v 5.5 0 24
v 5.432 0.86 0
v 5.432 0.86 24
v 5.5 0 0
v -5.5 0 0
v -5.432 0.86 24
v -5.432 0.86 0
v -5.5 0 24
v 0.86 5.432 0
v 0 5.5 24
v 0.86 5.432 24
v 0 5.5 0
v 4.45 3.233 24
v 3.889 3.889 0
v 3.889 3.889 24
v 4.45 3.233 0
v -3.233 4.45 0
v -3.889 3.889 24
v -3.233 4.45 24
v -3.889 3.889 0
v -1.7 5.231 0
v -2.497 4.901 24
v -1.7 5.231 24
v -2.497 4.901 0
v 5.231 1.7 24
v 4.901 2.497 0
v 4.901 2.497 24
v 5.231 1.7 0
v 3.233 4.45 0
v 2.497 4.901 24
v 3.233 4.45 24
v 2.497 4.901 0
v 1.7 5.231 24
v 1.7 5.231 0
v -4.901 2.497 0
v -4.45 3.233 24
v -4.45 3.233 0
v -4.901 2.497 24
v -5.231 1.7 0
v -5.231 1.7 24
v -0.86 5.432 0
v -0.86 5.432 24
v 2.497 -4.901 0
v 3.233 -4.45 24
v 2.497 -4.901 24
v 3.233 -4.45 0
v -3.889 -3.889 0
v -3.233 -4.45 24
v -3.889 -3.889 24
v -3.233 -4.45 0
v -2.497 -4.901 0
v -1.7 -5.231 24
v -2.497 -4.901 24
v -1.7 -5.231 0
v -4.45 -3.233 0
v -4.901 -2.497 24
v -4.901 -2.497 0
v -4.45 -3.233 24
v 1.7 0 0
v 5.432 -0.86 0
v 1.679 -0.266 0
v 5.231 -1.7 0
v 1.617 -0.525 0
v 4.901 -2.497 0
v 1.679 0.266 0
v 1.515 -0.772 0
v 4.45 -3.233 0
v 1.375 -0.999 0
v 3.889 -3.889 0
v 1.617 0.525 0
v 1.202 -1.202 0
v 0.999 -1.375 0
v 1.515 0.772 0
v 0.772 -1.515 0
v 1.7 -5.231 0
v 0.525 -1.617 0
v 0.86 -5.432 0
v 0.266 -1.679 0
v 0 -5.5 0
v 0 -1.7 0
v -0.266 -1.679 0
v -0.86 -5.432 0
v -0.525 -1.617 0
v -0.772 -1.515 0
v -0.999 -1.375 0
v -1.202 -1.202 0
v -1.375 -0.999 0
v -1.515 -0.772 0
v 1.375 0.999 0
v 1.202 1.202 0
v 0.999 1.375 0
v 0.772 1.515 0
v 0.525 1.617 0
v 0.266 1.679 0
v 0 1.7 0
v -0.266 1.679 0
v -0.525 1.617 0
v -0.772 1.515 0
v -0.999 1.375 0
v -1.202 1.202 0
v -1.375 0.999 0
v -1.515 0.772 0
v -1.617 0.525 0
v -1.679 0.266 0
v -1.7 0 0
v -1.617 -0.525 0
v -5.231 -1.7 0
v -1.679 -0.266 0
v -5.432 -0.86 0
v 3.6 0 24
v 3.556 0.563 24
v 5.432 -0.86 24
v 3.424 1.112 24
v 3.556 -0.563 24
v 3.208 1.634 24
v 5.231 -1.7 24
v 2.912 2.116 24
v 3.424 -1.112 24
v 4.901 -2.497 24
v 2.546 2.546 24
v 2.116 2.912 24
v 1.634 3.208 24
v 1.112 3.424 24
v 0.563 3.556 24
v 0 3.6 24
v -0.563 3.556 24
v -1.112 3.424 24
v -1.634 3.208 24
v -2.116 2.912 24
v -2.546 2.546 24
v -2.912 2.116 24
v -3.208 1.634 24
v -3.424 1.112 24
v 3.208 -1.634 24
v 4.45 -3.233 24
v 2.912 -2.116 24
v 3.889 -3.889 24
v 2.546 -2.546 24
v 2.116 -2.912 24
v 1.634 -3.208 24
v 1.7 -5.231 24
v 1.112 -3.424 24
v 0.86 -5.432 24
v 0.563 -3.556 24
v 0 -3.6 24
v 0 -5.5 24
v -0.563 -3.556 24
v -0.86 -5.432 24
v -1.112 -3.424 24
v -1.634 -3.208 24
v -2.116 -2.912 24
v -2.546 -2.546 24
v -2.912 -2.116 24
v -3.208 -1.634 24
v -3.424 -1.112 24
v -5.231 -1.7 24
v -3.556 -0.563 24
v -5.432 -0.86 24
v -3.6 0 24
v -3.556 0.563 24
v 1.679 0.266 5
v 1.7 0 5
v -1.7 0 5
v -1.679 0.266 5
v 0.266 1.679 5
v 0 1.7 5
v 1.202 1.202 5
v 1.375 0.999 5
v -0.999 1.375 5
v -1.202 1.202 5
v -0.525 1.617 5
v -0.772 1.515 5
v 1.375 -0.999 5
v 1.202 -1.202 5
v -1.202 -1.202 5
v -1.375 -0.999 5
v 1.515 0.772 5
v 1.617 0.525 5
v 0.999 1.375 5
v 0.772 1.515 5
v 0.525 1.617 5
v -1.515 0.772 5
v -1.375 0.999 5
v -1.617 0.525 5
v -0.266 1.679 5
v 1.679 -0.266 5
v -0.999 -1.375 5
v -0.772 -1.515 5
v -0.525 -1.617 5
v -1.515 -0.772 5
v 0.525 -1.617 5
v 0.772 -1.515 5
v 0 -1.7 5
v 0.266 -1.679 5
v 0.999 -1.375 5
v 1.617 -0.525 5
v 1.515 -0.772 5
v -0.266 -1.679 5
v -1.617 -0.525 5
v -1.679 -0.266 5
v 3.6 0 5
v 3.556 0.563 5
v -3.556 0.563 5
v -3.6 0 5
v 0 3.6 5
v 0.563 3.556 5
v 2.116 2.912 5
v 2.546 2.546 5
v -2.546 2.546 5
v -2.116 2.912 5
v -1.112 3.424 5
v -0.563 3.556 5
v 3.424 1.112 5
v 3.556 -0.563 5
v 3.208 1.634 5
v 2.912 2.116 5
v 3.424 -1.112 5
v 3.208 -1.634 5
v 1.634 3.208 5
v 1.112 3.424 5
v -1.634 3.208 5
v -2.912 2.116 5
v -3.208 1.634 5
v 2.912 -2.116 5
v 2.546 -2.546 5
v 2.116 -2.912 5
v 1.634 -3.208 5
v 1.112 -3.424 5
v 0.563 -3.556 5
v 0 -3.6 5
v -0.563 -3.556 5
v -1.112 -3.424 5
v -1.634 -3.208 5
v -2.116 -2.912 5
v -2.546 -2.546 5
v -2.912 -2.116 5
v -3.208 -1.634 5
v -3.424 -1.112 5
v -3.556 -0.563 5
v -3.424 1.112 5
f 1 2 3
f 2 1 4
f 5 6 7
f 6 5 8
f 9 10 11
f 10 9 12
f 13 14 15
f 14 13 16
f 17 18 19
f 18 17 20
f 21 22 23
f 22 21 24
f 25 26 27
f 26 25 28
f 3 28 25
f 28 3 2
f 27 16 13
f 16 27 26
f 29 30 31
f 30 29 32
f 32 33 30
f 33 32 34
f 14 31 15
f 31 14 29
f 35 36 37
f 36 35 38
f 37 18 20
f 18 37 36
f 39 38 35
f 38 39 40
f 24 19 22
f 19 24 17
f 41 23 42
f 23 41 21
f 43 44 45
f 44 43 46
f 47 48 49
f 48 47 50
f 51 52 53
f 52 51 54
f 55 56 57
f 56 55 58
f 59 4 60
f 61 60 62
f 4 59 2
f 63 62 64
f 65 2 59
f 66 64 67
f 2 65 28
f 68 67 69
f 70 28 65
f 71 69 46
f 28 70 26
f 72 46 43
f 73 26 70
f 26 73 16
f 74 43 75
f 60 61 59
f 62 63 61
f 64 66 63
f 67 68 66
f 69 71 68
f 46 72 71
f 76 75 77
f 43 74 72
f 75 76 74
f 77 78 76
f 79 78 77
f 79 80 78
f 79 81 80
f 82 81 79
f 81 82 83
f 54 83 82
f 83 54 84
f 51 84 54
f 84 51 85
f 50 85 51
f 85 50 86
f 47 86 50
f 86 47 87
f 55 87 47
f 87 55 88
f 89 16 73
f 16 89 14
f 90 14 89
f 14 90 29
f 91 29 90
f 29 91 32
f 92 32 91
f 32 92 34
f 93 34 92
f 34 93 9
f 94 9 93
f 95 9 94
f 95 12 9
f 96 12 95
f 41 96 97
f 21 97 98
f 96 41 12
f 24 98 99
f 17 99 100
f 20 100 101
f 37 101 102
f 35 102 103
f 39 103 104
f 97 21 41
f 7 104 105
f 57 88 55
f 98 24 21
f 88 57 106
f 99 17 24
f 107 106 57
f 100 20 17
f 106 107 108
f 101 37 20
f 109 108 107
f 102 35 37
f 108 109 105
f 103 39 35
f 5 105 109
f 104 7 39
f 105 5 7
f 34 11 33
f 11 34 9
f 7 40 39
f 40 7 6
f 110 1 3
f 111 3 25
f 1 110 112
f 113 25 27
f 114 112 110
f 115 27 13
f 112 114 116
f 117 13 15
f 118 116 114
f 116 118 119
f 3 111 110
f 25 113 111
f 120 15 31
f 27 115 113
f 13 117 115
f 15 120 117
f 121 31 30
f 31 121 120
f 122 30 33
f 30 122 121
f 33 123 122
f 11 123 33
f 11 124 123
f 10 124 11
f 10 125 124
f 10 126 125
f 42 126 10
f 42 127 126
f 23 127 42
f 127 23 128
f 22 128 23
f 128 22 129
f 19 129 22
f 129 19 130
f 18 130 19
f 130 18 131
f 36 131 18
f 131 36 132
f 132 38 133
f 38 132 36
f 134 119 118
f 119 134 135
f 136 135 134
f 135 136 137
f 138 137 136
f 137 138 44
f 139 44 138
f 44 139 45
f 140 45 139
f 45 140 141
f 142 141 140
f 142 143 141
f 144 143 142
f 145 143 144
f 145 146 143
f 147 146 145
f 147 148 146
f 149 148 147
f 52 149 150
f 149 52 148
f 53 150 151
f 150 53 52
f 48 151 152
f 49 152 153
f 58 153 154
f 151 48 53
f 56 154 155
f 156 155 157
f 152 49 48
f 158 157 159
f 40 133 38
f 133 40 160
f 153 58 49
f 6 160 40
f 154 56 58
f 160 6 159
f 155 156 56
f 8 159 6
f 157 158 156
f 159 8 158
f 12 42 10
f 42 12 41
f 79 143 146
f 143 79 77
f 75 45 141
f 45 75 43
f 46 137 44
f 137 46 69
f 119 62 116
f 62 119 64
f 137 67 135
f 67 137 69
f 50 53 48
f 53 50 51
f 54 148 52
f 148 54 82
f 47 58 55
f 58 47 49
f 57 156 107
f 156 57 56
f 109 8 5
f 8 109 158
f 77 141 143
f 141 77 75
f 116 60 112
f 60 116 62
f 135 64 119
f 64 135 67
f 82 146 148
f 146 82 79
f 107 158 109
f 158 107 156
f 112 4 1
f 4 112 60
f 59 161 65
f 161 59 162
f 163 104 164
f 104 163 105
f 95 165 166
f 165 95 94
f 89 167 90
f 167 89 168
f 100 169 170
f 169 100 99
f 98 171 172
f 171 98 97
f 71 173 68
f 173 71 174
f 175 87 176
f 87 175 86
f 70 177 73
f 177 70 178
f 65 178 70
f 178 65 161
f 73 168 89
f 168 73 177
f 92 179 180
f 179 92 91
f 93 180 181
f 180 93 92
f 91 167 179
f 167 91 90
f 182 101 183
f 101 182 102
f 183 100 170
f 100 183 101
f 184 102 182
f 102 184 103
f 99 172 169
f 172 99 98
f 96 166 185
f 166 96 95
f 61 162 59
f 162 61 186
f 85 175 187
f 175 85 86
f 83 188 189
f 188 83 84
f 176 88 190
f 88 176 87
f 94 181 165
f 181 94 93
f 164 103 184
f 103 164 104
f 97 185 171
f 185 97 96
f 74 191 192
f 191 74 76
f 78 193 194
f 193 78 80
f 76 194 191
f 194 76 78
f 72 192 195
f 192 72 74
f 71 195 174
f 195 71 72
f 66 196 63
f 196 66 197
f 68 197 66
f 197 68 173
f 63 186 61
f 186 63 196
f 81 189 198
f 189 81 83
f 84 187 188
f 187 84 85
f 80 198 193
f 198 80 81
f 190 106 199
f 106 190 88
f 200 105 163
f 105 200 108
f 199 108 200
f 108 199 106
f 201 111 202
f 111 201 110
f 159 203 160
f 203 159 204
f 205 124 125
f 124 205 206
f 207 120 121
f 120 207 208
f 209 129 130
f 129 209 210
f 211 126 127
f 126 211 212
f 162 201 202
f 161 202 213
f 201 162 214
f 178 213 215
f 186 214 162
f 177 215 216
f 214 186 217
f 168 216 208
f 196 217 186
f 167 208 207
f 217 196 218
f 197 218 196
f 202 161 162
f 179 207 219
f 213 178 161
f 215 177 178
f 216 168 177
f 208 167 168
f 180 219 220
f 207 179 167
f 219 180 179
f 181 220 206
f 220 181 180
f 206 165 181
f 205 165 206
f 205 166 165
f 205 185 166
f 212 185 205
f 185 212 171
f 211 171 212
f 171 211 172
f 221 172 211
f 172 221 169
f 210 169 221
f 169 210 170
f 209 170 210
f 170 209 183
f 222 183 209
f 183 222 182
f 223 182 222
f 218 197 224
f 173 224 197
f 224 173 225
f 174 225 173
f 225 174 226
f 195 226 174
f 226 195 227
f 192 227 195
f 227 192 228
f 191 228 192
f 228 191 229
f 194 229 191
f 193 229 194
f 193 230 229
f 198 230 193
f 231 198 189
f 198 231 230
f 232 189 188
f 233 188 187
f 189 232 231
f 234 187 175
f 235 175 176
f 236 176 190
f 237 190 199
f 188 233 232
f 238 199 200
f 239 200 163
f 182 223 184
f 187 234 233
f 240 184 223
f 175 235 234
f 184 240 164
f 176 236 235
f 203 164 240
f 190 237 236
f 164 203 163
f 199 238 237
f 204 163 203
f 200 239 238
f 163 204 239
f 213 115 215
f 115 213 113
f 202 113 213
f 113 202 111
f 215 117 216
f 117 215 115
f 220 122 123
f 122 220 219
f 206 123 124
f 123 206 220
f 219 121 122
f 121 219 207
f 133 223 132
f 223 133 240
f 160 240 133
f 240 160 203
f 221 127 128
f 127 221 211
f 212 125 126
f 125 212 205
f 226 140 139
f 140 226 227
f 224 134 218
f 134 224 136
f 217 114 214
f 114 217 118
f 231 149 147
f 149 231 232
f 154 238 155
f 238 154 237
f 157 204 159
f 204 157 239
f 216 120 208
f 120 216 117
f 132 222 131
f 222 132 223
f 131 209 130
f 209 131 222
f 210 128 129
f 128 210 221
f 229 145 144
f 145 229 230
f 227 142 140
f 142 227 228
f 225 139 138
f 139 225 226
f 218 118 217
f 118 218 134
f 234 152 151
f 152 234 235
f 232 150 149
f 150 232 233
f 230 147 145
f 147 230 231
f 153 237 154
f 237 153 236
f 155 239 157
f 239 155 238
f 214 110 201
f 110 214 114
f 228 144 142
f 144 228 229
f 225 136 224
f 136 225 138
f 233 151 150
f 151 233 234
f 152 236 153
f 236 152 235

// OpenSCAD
$fn = 40;

// ====================================================================
// 1. KHUNG CHAN DON K2 HUB CHO PIN 2S2P (01D_Base_Riser_Frame_2S2P)
// ====================================================================
// - Nang tam bat K2 Hub len Z_top = 46.0mm (hoac 48.0mm):
//   + Mat day san xe Z = 4.0mm -> Khoang sang gam lot long: H_clear = 46.0 - 4.0 = 42.0mm!
//   + Dat vua khit khoi pin 2S2P 38 x 38 x 70mm + day dai Velcro 2mm + khe ho an toan 2mm!
// - 4 Chan don ha thang dung xuong 4 tru khung gam (Z = 22.0mm) tai X = +-33.0, Y = 49.0 & 99.0
//   + Day chan day 4.5mm (Z = 22.0..26.5mm) bat oc M3x10/12mm cuc de
//   + Gieng mo thong suot tu Z = 26.5 len Z_top giup van oc thang dung tu tren xuong
// - 2 Thanh giang ngang duoc bo tri NÉ PIN 2S2P 100%:
//   + Giang sau tai Y in [-18.0, -10.0mm] (phia sau pin)
//   + Giang truoc tai Y in [84.0, 92.0mm] (phia truoc pin)
//   + Toan bo khoang giua X in [-26.5, +26.5mm], Y in [0, 84mm] THONG SUOT 100% khong vuong giang!
// - 4 Tai khoa nhanh lo thien co san hoc giu tan M3 day kin chong roi
// - In lat up 180° (mat Z_top nam sat ban in): IN 0% SUPPORT!
// ====================================================================
module k2_base_riser_frame_2s2p(Z_top = 46.0) {
    difference() {
        union() {
            for (sx = [-1, 1]) {
                // 1. Hai Chan Tru Sau (|X| in [26.5, 39.2], Y in [45.0, 56.5], Z in [22.0, Z_top]):
                translate([sx * 32.85 - 6.35, 45.0, 22.0])
                    cube([12.7, 11.5, Z_top - 22.0]);
                    
                // 2. Hai Chan & Tay Tru Truoc Ne Thap Nang (|X| in [29.2, 39.2], Y in [82.0, 102.0], Z in [22.0, Z_top]):
                translate([sx * 34.2 - 5.0, 82.0, 22.0])
                    cube([10.0, 20.0, Z_top - 22.0]);
                    
                // 3. Dam doc tren noi lien tu Tai Sau (Y = -18.0) den Tay Truoc (Y = 85.0) tai Z in [Z_top - 7.0, Z_top]:
                translate([sx * 33.5 - 5.7, -18.0, Z_top - 7.0])
                    cube([11.4, 103.0, 7.0]);
                    
                // 4. Khoi Tai Khoa Sau Lo Thien day 8mm (|X| in [25.5, 40.5], Y in [-18.0, -7.0], Z in [Z_top - 8.0, Z_top]):
                translate([sx * 33.0 - 7.5, -18.0, Z_top - 8.0])
                    cube([15.0, 11.0, 8.0]);
            }
            
            // 5. Hai Thanh Giang Ngang Chu H NE HOAN TOAN PIN 2S2P:
            //    - Giang Sau: Tai Y in [-18.0, -10.0mm], Z in [Z_top - 6.0, Z_top] (Noi lien 2 tai sau)
            //    - Giang Truoc: Tai Y in [84.0, 92.0mm], Z in [Z_top - 6.0, Z_top] (Noi lien 2 tay truoc)
            //    -> Toan bo khoang tu Y = -10.0 den Y = 84.0mm (dai 94mm, rong 53mm) TRONG 100% cho Pin 2S2P 38x70mm!
            translate([-33.0, -17.0, Z_top - 6.0]) cube([66.0, 8.0, 6.0]);
            translate([-33.0, 84.0, Z_top - 6.0])  cube([66.0, 8.0, 6.0]);
        }
        
        // Vát goc day sau Chan Sau (Y = 45.0..47.5, Z = 22.0..27.0) tranh 100% than motor GA25:
        for (sx = [-1, 1]) {
            translate([sx * 33.0 - 7.5, 42.5, 21.0])
                rotate([38, 0, 0])
                    cube([15.0, 4.5, 8.0]);
        }
        
        // A. 2 HOC BAT TRU SAU (X = +-33.0, Y = 47.5..50.5):
        //    Day Z = 22.0..26.5mm (day 4.5mm), phia tren Z = 26.5..Z_top mo gieng thang dung O7.6mm
        for (sx = [-1, 1]) {
            // Lo truot oc M3 qua day day 4.5mm (Z = 22.0..26.5mm):
            hull() {
                translate([sx * 33.0, 47.5, 20.0]) cylinder(d=3.6, h=20.0);
                translate([sx * 33.0, 50.5, 20.0]) cylinder(d=3.6, h=20.0);
            }
            // Non chuyen tiep tu do 45° tu lo M3 len gieng dau oc:
            hull() {
                translate([sx * 33.0, 47.5, 26.5]) cylinder(d1=3.6, d2=7.6, h=2.5);
                translate([sx * 33.0, 50.5, 26.5]) cylinder(d1=3.6, d2=7.6, h=2.5);
            }
            // Gieng dung tha oc M3 & luc giac van thang dung tu tren xuong (Z = 28.9..Z_top+1):
            hull() {
                translate([sx * 33.0, 47.5, 28.9]) cylinder(d=7.6, h=Z_top - 27.9);
                translate([sx * 33.0, 50.5, 28.9]) cylinder(d=7.6, h=Z_top - 27.9);
            }
        }
        
        // B. 2 HOC BAT TRU TRUOC LO THIEN (X = +-32.0..35.5, Y = 95.5..99.5):
        //    Day Z = 22.0..26.5mm (day 4.5mm), phia tren Z = 26.5..Z_top mo thong ra phia truoc & mep ngoai:
        for (sx = [-1, 1]) {
            hull() {
                translate([sx * 32.0, 95.5, 20.0]) cylinder(d=3.6, h=20.0);
                translate([sx * 35.5, 95.5, 20.0]) cylinder(d=3.6, h=20.0);
                translate([sx * 32.0, 99.5, 20.0]) cylinder(d=3.6, h=20.0);
                translate([sx * 35.5, 99.5, 20.0]) cylinder(d=3.6, h=20.0);
            }
            hull() {
                translate([sx * 32.5, 95.5, 26.5]) cylinder(d1=3.6, d2=8.5, h=3.0);
                translate([sx * 35.5, 95.5, 26.5]) cylinder(d1=3.6, d2=8.5, h=3.0);
                translate([sx * 32.5, 103.5, 26.5]) cylinder(d1=3.6, d2=8.5, h=3.0);
                translate([sx * 38.5, 99.5, 26.5]) cylinder(d1=3.6, d2=8.5, h=3.0);
            }
            hull() {
                translate([sx * 32.5, 95.5, 29.4]) cylinder(d=8.5, h=Z_top - 28.4);
                translate([sx * 35.5, 95.5, 29.4]) cylinder(d=8.5, h=Z_top - 28.4);
                translate([sx * 32.5, 103.5, 29.4]) cylinder(d=8.5, h=Z_top - 28.4);
                translate([sx * 38.5, 99.5, 29.4]) cylinder(d=8.5, h=Z_top - 28.4);
            }
        }
        
        // C. 2 RANH KHOA TAN M3 DAY KIN O TAI SAU LO THIEN (X = +-33.0, Y = -15.0 .. -11.0):
        for (sx = [-1, 1]) {
            hull() {
                translate([sx * 33.0, -15.0, Z_top - 10.0]) cylinder(d=3.3, h=12.0);
                translate([sx * 33.0, -11.0, Z_top - 10.0]) cylinder(d=3.3, h=12.0);
            }
            // Ranh khoa tan M3 co day do 1.2mm + cua nhet tan tu duoi Y = -19.0:
            hull() {
                translate([sx * 33.0, -19.0, Z_top - 6.8]) cylinder(d=5.65, h=2.9);
                translate([sx * 33.0, -11.0, Z_top - 6.8]) cylinder(d=5.65, h=2.9);
            }
            hull() {
                translate([sx * 33.0, -19.0, Z_top - 4.0]) cylinder(d1=5.65, d2=3.3, h=1.6);
                translate([sx * 33.0, -11.0, Z_top - 4.0]) cylinder(d1=5.65, d2=3.3, h=1.6);
            }
        }
        
        // D. 2 RANH KHOA TAN M3 DAY KIN O TAI TRUOC LO THIEN (X = +-34.0, Y = 86.0 .. 90.0):
        for (sx = [-1, 1]) {
            hull() {
                translate([sx * 34.0, 86.0, Z_top - 12.0]) cylinder(d=3.3, h=14.0);
                translate([sx * 34.0, 90.0, Z_top - 12.0]) cylinder(d=3.3, h=14.0);
            }
            hull() {
                translate([sx * 34.0, 86.0, Z_top - 6.8]) cylinder(d=5.65, h=2.9);
                translate([sx * 34.0, 90.0, Z_top - 6.8]) cylinder(d=5.65, h=2.9);
                translate([sx * 40.5, 88.0, Z_top - 6.8]) cylinder(d=5.65, h=2.9);
            }
            hull() {
                translate([sx * 34.0, 86.0, Z_top - 4.0]) cylinder(d1=5.65, d2=3.3, h=1.6);
                translate([sx * 34.0, 90.0, Z_top - 4.0]) cylinder(d1=5.65, d2=3.3, h=1.6);
                translate([sx * 40.5, 88.0, Z_top - 4.0]) cylinder(d1=5.65, d2=3.3, h=1.6);
            }
        }
    }
}

module k2_base_riser_frame_2s2p_printable(Z_top = 46.0) {
    translate([0, 0, Z_top])
        rotate([180, 0, 0])
            k2_base_riser_frame_2s2p(Z_top = Z_top);
}

// ====================================================================
// 2. TRU DON ROII MODULE CHO PIN 2S2P (01D_Riser_Standoff_24mm_2S2P)
// ====================================================================
// - Don cao them 24mm (Z = 22.0 + 24.0 = 46.0mm -> H_clear = 42.0mm)
// - Duong kinh O11.0mm, lo xuyen O3.4mm, gieng am M3 sau 19mm
module riser_standoff_24mm_2s2p(h = 24.0) {
    difference() {
        cylinder(d=11.0, h=h);
        translate([0, 0, -1.0]) cylinder(d=3.4, h=h + 2.0);
        translate([0, 0, 5.0]) cylinder(d=7.2, h=h);
    }
}

// ====================================================================
// 3. BAN ADAPTER LIEN KHOI DON CAO CHO PIN 2S2P (01D_K2_Control_Hub_Riser_Adapter_Monolithic_2S2P)
// ====================================================================
// - Tich hop toan bo chan don + san do K2 Hub + 2 canh ga ToF VL53L0X
// - Z_bot = 46.0mm -> H_clear = 46.0 - 4.0 = 42.0mm!
// - T_deck = 5.0mm -> Z_top = 51.0mm (Dinh K2 Hub Z = 51.0 + 26.0 = 77.0mm < 78.0mm)
// - In lat up 180°: 100% Zero Support!
module vl53l0x_pod_half(T_deck = 5.0, Z_base = 0.0) {
    difference() {
        union() {
            hull() {
                translate([56.0, 66.0, Z_base]) cube([4.0, 16.5, T_deck]);
                translate([68.2, 67.5, Z_base]) cylinder(r=2.2, h=T_deck + 6.0);
                translate([68.2, 81.0, Z_base]) cylinder(r=2.2, h=T_deck + 6.0);
                translate([56.0, 82.5, Z_base]) cube([4.0, 0.1, T_deck]);
            }
            for (py = [70.0, 78.5]) {
                translate([68.6, py - 2.2, Z_base]) cube([1.8, 4.4, T_deck + 6.0]);
                translate([68.6, py - 2.2, Z_base + T_deck + 4.5])
                    hull() {
                        cube([1.8, 4.4, 1.5]);
                        translate([-1.0, 0, 0]) cube([0.1, 4.4, 1.0]);
                    }
            }
            translate([66.2, 68.0, Z_base]) cube([1.4, 13.0, T_deck + 5.5]);
        }
        translate([67.6, 67.5, Z_base + 1.5]) cube([2.1, 14.0, 15.0]);
        translate([64.5, 68.5, Z_base + 2.8]) cube([8.0, 11.0, 6.5]);
        hull() {
            translate([66.0, 68.5, Z_base + 2.8]) cube([0.1, 11.0, 6.5]);
            translate([70.0, 67.5, Z_base + 1.5]) cube([0.1, 13.0, 9.2]);
        }
        translate([63.5, 67.5, Z_base - 1.0]) cylinder(d=3.3, h=T_deck + 10.0);
        translate([63.5, 81.5, Z_base - 1.0]) cylinder(d=3.3, h=T_deck + 10.0);
        translate([56.0, 74.0, Z_base + 2.5]) cube([12.0, 5.0, T_deck + 2.0]);
    }
}

module vl53l0x_maze_sensor_pod(is_left = true, T_deck = 5.0, Z_base = 0.0) {
    if (is_left) {
        mirror([1, 0, 0]) vl53l0x_pod_half(T_deck = T_deck, Z_base = Z_base);
    } else {
        vl53l0x_pod_half(T_deck = T_deck, Z_base = Z_base);
    }
}

module k2_adapter_monolithic_2s2p(Z_bot = 46.0, T_deck = 5.0) {
    Z_top = Z_bot + T_deck; // 51.0mm
    
    difference() {
        union() {
            // 1. Mat san chinh (120.0 x 90.0 x 5.0 mm, X in [-60, 60], Y in [-8.0, 82.0]):
            translate([-60.0, -8.0, Z_bot])
                cube([120.0, 90.0, T_deck]);
                
            // 2. Hai Chan Don Sau Ha Thang Dung (|X| in [26.5, 39.2], Y in [45.0, 56.5], Z in [22.0, Z_bot]):
            for (sx = [-1, 1]) {
                translate([sx * 32.85 - 6.35, 45.0, 22.0])
                    cube([12.7, 11.5, Z_bot - 22.0]);
            }
            
            // 3. Hai Tay/Chan Don Truoc LO THIEN NGOAI K2 HUB & NE THAP NANG 100%
            //    (|X| in [29.2, 39.2], Y in [81.0, 102.0], Z in [22.0, Z_top]):
            for (sx = [-1, 1]) {
                translate([sx * 34.2 - 5.0, 81.0, 22.0])
                    cube([10.0, 21.0, Z_top - 22.0]);
            }
            
            // 4. Hai Cum Ga Laser ToF VL53L0X
            vl53l0x_maze_sensor_pod(is_left=true, T_deck=T_deck, Z_base=Z_top - 12.0);
            vl53l0x_maze_sensor_pod(is_left=false, T_deck=T_deck, Z_base=Z_top - 12.0);
        }
        
        // Vat goc day sau Chan Sau tranh than motor:
        for (sx = [-1, 1]) {
            translate([sx * 33.0 - 7.5, 42.5, 21.0])
                rotate([38, 0, 0])
                    cube([15.0, 4.5, 8.0]);
        }
        
        // O thoang trung tam rong rai cho cap nguon Pin 2S2P & thoat nhiet (44.0 x 44.0 mm, Y in [18.0, 62.0]):
        translate([-22.0, 18.0, 20.0])
            cube([44.0, 44.0, Z_top + 2.0]);
            
        // A. 2 CHIEU BAT TRU SAU KEM GIENG VAN OC XUYEN SUOT (X = +-31.5..35.0, Y = 46.5..51.5):
        for (sx = [-1, 1]) {
            hull() {
                translate([sx * 31.5, 46.5, 20.0]) cylinder(d=3.6, h=Z_top - 18.0);
                translate([sx * 35.0, 46.5, 20.0]) cylinder(d=3.6, h=Z_top - 18.0);
                translate([sx * 31.5, 51.5, 20.0]) cylinder(d=3.6, h=Z_top - 18.0);
                translate([sx * 35.0, 51.5, 20.0]) cylinder(d=3.6, h=Z_top - 18.0);
            }
            hull() {
                translate([sx * 31.5, 46.5, 26.5]) cylinder(d1=3.6, d2=9.2, h=3.0);
                translate([sx * 35.0, 46.5, 26.5]) cylinder(d1=3.6, d2=9.2, h=3.0);
                translate([sx * 31.5, 51.5, 26.5]) cylinder(d1=3.6, d2=9.2, h=3.0);
                translate([sx * 35.0, 51.5, 26.5]) cylinder(d1=3.6, d2=9.2, h=3.0);
            }
            hull() {
                translate([sx * 31.5, 46.5, 29.4]) cylinder(d=9.2, h=Z_top - 28.0);
                translate([sx * 35.0, 46.5, 29.4]) cylinder(d=9.2, h=Z_top - 28.0);
                translate([sx * 31.5, 51.5, 29.4]) cylinder(d=9.2, h=Z_top - 28.0);
                translate([sx * 35.0, 51.5, 29.4]) cylinder(d=9.2, h=Z_top - 28.0);
            }
        }
        
        // B. 2 TAY/CHAN TRUOC LO THIEN NGOAI K2 HUB (X = +-32.0..35.5, Y = 95.5..99.5):
        for (sx = [-1, 1]) {
            hull() {
                translate([sx * 32.0, 95.5, 20.0]) cylinder(d=3.6, h=Z_top - 18.0);
                translate([sx * 35.5, 95.5, 20.0]) cylinder(d=3.6, h=Z_top - 18.0);
                translate([sx * 32.0, 99.5, 20.0]) cylinder(d=3.6, h=Z_top - 18.0);
                translate([sx * 35.5, 99.5, 20.0]) cylinder(d=3.6, h=Z_top - 18.0);
            }
            hull() {
                translate([sx * 32.5, 95.5, 26.5]) cylinder(d1=3.6, d2=8.5, h=3.0);
                translate([sx * 35.5, 95.5, 26.5]) cylinder(d1=3.6, d2=8.5, h=3.0);
                translate([sx * 32.5, 103.5, 26.5]) cylinder(d1=3.6, d2=8.5, h=3.0);
                translate([sx * 38.5, 99.5, 26.5]) cylinder(d1=3.6, d2=8.5, h=3.0);
            }
            hull() {
                translate([sx * 32.5, 95.5, 29.4]) cylinder(d=8.5, h=Z_top - 28.0);
                translate([sx * 35.5, 95.5, 29.4]) cylinder(d=8.5, h=Z_top - 28.0);
                translate([sx * 32.5, 103.5, 29.4]) cylinder(d=8.5, h=Z_top - 28.0);
                translate([sx * 38.5, 99.5, 29.4]) cylinder(d=8.5, h=Z_top - 28.0);
            }
        }
        
        // C. 4 RANH TRUOT DON GON GANG TAI 4 GOC K2 CONTROL HUB:
        for (sx = [-1, 1]) {
            for (sy = [6.0, 68.0]) {
                hull() {
                    translate([sx * 44.0, sy, Z_bot - 1.0]) cylinder(d=3.4, h=T_deck + 2.0);
                    translate([sx * 53.0, sy, Z_bot - 1.0]) cylinder(d=3.4, h=T_deck + 2.0);
                }
                hull() {
                    translate([sx * 44.0, sy, Z_top - 2.5]) cylinder(d=6.5, h=3.0);
                    translate([sx * 53.0, sy, Z_top - 2.5]) cylinder(d=6.5, h=3.0);
                }
            }
        }
    }
}

module k2_adapter_monolithic_2s2p_printable(Z_bot = 46.0, T_deck = 5.0) {
    translate([0, 0, Z_bot + T_deck])
        rotate([180, 0, 0])
            k2_adapter_monolithic_2s2p(Z_bot = Z_bot, T_deck = T_deck);
}


riser_standoff_24mm_2s2p(h=24.0);
